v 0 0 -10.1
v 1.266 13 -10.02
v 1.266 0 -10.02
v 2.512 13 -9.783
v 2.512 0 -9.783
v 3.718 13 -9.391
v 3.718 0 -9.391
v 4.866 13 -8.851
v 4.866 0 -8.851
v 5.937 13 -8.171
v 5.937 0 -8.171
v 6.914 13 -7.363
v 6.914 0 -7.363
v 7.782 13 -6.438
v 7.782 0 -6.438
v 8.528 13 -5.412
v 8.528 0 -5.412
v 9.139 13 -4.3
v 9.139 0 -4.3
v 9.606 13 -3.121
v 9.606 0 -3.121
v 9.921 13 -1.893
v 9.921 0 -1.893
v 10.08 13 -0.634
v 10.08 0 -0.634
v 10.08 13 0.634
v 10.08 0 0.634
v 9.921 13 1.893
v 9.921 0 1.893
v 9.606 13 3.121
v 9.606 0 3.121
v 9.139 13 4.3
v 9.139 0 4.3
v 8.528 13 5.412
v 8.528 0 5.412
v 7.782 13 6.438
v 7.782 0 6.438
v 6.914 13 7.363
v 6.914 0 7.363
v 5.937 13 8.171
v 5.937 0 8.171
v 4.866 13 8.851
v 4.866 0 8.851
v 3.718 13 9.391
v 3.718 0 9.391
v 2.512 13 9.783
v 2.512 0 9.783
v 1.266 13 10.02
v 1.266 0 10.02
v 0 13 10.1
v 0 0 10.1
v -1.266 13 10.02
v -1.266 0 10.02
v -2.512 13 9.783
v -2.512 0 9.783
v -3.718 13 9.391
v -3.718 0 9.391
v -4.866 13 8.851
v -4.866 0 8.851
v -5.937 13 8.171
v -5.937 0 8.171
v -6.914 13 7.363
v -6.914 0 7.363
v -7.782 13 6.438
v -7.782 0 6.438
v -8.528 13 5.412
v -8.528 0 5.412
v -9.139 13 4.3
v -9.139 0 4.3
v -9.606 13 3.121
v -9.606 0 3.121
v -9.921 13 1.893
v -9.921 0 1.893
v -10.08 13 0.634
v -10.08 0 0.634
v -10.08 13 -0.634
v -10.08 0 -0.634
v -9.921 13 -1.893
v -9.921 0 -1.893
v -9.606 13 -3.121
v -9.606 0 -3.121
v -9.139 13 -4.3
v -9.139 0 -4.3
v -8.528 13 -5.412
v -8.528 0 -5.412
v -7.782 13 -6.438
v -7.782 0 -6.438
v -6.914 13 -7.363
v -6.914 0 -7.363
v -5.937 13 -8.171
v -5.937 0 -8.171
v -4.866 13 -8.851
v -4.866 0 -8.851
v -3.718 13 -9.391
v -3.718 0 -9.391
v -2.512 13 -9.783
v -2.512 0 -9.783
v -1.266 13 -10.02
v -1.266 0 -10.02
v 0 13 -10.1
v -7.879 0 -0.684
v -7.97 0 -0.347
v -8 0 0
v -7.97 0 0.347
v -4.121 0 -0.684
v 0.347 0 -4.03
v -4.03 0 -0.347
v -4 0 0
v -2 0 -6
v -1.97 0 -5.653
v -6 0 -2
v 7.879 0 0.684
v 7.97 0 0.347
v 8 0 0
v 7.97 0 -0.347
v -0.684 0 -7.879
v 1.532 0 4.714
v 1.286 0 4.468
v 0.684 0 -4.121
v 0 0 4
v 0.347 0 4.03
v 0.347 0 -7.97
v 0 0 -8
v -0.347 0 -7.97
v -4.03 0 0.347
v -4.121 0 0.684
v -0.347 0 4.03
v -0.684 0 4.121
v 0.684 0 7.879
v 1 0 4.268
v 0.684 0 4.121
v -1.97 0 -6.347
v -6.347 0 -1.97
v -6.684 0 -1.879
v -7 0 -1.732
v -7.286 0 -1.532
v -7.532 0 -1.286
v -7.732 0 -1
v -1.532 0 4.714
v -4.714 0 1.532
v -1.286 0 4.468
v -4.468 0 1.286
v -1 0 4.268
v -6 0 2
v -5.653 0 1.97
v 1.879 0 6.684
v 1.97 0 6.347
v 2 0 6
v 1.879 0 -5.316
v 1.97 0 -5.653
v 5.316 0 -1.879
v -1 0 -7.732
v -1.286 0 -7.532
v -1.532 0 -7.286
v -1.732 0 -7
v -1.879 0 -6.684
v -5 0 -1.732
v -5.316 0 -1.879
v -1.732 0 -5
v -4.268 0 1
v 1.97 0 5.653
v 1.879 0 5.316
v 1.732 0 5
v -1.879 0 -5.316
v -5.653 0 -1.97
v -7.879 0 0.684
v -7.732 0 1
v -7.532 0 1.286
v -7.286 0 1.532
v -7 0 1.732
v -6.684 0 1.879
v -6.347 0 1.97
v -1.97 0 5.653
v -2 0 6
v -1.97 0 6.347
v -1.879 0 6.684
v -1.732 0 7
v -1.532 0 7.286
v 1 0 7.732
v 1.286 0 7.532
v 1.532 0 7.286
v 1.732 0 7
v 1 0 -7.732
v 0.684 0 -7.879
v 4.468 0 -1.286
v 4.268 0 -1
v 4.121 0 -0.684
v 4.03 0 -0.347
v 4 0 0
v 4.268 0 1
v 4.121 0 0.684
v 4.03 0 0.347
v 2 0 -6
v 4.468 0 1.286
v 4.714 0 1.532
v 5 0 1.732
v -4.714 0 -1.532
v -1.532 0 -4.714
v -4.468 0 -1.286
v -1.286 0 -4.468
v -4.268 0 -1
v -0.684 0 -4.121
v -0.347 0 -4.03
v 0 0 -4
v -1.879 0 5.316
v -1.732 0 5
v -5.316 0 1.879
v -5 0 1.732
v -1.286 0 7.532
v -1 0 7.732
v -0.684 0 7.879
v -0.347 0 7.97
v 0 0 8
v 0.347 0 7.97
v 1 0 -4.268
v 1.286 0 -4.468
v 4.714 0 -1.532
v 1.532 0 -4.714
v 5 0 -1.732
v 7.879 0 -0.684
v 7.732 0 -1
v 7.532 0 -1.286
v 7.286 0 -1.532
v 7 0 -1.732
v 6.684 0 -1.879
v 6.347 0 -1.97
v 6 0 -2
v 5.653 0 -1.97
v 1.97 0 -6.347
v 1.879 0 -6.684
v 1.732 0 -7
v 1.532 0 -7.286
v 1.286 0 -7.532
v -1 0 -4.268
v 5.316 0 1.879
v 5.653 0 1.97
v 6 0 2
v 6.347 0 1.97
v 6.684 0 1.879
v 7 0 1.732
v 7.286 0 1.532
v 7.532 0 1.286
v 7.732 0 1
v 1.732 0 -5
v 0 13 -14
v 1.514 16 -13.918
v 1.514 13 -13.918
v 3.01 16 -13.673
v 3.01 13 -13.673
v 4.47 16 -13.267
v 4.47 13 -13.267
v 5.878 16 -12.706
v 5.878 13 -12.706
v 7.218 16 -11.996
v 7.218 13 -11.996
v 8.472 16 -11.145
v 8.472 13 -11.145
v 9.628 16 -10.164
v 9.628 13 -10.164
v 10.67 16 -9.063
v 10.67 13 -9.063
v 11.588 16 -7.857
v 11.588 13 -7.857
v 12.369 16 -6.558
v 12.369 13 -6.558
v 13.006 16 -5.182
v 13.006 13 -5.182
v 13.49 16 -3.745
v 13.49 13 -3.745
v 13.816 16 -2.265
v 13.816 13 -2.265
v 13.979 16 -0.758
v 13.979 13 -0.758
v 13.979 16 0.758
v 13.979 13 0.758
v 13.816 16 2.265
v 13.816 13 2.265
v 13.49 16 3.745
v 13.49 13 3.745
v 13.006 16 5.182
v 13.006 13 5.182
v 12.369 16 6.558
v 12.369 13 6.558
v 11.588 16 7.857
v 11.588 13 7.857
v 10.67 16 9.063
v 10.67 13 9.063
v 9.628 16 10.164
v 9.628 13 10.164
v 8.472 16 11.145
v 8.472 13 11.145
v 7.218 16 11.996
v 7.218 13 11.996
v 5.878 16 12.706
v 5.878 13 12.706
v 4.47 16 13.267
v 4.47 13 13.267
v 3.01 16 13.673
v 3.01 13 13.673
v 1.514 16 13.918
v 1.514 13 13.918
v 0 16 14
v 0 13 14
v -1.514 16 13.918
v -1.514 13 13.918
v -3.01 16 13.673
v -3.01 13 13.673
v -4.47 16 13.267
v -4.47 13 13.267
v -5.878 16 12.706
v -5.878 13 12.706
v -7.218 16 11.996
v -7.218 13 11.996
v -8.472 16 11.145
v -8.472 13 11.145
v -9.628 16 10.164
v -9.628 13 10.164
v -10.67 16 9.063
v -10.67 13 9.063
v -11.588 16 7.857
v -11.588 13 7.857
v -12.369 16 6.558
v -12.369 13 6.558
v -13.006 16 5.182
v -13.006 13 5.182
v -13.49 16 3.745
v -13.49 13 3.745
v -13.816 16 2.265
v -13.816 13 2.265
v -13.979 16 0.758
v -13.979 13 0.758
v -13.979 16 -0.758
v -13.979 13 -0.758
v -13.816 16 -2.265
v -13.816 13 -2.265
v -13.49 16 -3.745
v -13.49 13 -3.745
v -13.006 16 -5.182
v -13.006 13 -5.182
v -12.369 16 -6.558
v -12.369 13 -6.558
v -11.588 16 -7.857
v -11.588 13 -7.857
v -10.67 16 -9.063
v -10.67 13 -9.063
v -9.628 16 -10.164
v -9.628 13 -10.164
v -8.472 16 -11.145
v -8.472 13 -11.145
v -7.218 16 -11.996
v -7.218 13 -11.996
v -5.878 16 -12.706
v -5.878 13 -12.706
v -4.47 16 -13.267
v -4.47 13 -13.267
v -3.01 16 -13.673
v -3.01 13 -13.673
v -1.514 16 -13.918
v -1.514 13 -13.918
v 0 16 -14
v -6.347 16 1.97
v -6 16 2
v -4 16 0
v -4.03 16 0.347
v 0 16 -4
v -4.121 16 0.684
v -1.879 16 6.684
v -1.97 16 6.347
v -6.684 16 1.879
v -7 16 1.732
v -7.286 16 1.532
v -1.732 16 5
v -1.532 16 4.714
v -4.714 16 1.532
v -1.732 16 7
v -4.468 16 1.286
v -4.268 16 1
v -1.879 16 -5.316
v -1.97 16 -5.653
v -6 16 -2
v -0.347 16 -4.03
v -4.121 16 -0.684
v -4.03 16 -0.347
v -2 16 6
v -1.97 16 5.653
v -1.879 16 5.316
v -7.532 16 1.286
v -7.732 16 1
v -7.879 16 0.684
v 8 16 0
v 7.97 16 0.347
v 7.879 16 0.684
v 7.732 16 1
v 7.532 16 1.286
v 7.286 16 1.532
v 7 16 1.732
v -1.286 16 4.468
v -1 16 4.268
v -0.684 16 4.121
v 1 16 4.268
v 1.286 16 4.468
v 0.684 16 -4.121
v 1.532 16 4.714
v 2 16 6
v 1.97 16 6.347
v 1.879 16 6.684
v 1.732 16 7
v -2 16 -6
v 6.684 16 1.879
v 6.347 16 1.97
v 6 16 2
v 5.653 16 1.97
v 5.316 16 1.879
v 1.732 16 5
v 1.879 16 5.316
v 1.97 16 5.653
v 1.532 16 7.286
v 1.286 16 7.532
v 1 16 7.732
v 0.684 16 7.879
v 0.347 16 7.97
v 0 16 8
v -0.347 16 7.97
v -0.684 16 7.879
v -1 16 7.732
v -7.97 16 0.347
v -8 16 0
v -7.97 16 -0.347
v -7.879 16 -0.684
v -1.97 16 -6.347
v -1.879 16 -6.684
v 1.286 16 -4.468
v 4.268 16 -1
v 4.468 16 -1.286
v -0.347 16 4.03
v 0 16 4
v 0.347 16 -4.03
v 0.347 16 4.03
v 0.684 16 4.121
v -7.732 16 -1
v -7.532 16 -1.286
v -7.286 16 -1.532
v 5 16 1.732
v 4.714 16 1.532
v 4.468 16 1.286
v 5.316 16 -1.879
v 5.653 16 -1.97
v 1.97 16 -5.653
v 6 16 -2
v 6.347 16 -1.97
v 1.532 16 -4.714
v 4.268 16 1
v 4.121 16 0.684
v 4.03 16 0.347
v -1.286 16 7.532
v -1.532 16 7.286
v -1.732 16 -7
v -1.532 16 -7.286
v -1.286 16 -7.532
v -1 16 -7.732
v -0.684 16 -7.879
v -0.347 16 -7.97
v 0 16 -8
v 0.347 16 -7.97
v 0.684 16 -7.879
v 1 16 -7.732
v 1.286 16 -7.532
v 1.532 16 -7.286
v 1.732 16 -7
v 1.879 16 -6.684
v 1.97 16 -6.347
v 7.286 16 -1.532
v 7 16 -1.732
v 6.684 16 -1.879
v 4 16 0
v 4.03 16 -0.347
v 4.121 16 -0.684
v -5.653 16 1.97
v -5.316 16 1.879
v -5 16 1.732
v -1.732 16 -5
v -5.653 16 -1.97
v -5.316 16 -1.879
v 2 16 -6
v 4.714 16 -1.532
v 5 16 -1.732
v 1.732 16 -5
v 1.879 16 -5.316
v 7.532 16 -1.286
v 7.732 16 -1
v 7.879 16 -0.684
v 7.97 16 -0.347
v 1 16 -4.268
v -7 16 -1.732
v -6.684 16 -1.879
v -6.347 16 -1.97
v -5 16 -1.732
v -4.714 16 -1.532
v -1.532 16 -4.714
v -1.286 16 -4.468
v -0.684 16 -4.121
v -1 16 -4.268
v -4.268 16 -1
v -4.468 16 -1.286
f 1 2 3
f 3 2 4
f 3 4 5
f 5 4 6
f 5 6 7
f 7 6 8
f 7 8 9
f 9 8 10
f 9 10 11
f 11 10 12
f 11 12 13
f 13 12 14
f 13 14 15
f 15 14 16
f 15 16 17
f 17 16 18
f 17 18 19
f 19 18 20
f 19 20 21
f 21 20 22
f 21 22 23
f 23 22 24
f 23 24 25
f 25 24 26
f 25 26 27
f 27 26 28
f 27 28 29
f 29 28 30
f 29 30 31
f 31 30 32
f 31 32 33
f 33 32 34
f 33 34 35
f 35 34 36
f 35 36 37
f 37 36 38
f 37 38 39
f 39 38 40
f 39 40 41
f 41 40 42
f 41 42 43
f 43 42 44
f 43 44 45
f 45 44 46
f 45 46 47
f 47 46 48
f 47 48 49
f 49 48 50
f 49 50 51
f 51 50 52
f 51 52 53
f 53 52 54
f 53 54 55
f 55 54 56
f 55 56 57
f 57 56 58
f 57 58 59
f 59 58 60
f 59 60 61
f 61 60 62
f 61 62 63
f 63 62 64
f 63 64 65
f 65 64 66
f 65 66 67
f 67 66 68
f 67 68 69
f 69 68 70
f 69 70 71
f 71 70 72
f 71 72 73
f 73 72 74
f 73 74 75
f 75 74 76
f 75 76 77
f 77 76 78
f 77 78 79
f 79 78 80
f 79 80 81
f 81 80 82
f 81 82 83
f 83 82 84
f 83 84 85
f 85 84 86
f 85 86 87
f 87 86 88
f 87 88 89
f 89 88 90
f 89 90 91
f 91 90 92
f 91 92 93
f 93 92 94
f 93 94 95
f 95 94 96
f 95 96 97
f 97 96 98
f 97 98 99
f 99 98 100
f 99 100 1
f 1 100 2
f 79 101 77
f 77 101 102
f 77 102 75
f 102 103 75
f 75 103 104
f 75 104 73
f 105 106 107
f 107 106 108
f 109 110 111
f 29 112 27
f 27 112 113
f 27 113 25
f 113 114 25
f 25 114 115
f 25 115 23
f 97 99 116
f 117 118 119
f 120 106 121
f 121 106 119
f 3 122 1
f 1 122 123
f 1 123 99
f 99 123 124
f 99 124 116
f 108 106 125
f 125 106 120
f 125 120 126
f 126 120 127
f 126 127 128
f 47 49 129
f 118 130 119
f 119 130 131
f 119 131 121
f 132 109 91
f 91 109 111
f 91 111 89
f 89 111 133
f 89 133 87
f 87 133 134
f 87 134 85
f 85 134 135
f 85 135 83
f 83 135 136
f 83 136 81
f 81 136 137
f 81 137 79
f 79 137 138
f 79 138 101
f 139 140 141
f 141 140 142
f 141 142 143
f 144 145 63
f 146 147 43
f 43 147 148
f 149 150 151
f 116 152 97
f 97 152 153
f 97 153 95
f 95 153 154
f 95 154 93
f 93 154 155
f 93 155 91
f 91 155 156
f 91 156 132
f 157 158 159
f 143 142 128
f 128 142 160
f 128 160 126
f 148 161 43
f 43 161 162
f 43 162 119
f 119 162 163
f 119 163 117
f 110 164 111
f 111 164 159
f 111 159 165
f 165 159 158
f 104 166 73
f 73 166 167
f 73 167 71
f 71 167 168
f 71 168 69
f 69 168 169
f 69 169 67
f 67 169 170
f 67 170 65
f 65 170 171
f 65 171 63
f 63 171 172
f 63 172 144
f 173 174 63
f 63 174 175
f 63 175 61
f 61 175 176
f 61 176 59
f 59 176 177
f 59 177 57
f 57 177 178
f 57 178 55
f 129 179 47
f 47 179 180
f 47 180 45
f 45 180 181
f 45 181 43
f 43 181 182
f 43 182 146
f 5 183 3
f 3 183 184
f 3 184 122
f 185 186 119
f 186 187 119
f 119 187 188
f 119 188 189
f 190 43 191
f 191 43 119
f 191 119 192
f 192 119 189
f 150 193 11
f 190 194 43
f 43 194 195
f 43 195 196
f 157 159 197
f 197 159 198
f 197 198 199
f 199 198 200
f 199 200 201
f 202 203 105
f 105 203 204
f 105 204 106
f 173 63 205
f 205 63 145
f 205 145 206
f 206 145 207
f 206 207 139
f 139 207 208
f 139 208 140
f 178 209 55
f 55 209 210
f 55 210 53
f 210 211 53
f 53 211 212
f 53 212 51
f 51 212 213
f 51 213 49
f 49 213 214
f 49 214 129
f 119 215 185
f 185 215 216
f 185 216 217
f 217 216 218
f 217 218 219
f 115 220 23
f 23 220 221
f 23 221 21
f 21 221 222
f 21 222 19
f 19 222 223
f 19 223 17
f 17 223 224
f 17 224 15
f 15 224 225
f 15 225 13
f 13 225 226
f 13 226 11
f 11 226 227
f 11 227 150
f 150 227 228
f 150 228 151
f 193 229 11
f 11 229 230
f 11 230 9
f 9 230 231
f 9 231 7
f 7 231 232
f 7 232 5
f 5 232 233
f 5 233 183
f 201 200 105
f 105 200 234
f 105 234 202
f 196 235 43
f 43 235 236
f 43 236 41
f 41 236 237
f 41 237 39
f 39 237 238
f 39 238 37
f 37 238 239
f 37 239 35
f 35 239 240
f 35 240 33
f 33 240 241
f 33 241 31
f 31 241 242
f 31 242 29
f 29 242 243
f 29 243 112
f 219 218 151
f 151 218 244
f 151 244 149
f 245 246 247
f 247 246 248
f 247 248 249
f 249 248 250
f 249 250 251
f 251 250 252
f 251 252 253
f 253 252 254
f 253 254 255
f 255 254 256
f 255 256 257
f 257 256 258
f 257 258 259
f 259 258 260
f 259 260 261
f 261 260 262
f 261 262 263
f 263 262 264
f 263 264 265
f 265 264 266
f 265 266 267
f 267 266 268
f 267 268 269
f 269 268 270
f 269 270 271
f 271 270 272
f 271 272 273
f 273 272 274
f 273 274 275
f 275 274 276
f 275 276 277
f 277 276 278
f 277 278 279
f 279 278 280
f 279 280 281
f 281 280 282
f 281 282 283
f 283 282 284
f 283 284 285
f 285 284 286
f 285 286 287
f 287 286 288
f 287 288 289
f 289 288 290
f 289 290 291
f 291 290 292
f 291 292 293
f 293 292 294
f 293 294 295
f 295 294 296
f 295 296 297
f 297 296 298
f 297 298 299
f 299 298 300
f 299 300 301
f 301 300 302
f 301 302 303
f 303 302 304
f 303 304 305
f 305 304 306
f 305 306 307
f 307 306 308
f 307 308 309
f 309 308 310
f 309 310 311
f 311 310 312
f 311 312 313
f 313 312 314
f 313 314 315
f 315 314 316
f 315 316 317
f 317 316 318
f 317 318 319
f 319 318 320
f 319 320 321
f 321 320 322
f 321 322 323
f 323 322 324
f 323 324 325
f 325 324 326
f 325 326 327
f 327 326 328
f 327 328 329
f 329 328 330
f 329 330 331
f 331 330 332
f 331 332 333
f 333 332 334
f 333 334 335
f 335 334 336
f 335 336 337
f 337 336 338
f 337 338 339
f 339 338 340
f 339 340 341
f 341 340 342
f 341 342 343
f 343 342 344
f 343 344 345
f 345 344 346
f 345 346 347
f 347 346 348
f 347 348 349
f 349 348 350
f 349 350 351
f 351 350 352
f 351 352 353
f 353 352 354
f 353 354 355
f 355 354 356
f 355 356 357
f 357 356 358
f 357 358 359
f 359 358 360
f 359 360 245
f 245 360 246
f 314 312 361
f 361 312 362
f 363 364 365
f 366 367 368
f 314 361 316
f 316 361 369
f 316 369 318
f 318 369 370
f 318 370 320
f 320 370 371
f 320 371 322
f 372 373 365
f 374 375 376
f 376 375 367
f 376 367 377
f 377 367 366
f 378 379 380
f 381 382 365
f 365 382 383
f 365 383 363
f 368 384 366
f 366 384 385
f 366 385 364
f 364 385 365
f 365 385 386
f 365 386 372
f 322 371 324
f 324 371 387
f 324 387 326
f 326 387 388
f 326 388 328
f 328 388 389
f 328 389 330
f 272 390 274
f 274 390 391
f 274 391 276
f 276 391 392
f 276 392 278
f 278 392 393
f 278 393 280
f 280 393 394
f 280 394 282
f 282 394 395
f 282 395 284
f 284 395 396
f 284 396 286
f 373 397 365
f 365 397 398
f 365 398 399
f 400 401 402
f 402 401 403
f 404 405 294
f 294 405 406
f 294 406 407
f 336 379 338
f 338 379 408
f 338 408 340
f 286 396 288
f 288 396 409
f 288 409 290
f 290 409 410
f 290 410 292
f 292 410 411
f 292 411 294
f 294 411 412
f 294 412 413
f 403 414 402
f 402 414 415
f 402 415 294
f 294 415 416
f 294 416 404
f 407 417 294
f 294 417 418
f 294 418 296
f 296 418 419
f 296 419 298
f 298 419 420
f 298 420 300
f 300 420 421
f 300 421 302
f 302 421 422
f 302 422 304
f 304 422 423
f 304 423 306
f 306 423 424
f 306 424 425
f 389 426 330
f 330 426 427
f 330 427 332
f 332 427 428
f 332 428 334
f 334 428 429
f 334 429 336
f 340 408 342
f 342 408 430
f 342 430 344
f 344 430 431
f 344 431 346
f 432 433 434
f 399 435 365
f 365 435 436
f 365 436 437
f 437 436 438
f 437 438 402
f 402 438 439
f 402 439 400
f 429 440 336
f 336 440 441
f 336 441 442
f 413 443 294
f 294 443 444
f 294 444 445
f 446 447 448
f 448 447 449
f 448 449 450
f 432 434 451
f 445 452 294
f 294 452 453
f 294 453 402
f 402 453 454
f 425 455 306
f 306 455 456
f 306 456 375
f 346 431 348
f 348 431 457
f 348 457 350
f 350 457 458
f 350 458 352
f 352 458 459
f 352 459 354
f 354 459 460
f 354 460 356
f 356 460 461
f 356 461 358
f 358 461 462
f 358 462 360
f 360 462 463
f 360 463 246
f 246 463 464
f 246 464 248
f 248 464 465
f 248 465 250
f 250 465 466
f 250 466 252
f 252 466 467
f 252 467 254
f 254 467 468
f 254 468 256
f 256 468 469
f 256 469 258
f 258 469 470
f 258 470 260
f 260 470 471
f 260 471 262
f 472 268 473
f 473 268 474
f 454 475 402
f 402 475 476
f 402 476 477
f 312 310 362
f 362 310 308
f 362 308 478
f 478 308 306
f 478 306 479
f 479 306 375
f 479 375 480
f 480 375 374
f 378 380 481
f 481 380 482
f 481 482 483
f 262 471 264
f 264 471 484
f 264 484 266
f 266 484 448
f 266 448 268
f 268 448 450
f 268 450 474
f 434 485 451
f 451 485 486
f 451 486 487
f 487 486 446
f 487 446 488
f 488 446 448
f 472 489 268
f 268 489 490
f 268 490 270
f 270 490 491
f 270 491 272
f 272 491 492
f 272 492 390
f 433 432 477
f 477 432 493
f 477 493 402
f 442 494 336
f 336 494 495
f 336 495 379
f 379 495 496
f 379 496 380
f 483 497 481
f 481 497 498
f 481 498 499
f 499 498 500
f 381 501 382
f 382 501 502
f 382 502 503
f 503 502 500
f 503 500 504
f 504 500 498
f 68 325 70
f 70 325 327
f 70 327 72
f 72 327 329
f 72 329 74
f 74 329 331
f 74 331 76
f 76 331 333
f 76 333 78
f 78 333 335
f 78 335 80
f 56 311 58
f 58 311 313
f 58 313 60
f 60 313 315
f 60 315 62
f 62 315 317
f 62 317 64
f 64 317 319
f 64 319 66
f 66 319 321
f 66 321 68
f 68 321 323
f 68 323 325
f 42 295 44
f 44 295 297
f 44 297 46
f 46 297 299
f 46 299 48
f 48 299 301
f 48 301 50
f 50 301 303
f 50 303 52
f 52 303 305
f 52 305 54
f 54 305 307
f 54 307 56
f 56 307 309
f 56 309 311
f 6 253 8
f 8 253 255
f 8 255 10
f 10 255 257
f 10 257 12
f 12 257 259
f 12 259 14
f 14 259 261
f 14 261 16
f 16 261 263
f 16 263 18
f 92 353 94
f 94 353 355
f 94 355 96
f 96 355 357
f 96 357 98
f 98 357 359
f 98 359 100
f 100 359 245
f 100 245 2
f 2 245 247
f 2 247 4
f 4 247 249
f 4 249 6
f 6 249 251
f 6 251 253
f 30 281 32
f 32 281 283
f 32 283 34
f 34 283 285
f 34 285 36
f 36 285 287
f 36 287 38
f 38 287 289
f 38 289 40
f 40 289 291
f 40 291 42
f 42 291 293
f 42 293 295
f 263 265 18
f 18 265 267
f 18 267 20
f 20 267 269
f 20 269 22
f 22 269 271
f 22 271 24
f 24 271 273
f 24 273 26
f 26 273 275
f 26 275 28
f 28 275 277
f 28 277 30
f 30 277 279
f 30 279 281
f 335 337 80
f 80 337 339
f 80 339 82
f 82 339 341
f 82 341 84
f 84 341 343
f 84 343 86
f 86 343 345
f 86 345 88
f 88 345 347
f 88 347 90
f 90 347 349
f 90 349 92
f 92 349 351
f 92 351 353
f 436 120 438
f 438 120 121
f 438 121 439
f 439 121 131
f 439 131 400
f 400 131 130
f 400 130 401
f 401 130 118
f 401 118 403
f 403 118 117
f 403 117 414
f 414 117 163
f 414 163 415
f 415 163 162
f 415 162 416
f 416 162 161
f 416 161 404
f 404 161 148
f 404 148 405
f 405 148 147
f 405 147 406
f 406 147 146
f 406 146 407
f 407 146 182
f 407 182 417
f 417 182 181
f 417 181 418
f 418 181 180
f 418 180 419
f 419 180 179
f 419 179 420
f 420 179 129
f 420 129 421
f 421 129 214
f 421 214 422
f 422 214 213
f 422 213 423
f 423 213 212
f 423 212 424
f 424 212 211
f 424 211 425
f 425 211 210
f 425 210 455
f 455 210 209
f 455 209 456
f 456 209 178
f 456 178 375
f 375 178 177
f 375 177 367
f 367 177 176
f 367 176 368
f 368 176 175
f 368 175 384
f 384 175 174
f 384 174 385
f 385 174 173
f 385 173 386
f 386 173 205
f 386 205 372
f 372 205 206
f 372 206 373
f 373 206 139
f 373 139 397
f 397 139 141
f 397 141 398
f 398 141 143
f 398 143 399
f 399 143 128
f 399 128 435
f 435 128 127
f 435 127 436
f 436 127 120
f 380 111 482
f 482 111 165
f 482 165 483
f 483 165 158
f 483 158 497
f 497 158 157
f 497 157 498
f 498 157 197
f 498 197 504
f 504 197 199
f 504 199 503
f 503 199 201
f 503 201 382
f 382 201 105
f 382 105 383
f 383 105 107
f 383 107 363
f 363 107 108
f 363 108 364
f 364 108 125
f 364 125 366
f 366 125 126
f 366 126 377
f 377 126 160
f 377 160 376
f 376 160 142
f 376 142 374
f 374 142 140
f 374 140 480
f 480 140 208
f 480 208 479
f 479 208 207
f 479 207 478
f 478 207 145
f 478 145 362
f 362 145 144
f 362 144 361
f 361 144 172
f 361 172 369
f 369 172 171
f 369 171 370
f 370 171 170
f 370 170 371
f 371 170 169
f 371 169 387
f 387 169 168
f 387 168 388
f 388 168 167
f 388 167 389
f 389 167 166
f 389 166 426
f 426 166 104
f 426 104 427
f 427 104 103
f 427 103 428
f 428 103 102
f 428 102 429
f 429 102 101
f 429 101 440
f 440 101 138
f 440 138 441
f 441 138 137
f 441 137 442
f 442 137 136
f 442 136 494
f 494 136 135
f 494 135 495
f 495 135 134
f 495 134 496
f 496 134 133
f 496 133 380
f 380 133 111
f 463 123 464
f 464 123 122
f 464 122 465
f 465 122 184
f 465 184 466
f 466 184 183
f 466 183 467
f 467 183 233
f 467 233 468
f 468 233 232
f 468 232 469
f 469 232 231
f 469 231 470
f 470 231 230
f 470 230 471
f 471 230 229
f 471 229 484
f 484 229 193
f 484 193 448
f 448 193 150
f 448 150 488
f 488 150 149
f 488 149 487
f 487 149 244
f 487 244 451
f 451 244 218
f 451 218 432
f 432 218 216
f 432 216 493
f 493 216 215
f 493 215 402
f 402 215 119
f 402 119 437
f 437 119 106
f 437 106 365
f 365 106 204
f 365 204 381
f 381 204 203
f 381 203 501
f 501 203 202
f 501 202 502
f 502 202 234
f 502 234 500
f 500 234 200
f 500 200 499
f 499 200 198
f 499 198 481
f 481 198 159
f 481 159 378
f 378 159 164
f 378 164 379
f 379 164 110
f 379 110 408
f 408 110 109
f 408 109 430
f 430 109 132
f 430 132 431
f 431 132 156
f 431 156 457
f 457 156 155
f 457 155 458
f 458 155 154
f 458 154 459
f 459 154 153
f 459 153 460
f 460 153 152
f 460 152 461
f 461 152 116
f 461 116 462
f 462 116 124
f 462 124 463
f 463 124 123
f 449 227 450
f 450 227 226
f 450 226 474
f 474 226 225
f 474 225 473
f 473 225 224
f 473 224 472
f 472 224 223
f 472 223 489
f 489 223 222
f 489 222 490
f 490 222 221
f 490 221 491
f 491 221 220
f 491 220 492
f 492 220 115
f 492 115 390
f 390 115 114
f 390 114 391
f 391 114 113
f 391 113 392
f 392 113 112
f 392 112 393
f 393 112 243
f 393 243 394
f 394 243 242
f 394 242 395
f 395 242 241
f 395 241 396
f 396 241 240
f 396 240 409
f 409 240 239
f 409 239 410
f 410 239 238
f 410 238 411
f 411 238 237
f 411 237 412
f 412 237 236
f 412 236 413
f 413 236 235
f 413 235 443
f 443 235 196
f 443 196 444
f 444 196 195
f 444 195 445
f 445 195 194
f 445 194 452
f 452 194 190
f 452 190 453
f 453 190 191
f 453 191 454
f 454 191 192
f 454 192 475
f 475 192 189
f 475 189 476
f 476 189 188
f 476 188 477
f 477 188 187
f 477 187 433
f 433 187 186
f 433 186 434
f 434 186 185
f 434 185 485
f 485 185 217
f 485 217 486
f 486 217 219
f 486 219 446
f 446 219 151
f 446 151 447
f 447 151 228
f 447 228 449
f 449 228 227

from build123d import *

# Parameters (mm, degrees)
SKETCH1_R           = 10.1
BOSS_EXTRUDE1_DEPTH = 13
SKETCH2_R           = 14
BOSS_EXTRUDE2_DEPTH = 3
SKETCH3_R           = 2
CUT_EXTRUDE1_DEPTH  = 17
CIRPATTERN1_COUNT   = 4


with BuildPart() as part:
    # Sketch1 → Boss-Extrude1 (new body)
    with BuildSketch(Plane(origin=(0, 0, 0), x_dir=(1, 0, 0), z_dir=(0, 1, 0))):
        Circle(SKETCH1_R)
    extrude(amount=BOSS_EXTRUDE1_DEPTH)

    # Sketch2 → Boss-Extrude2 (add)
    with BuildSketch(Plane(origin=(0, 13, 0), x_dir=(1, 0, 0), z_dir=(0, 1, 0))):
        Circle(SKETCH2_R)
    extrude(amount=BOSS_EXTRUDE2_DEPTH)

    # Sketch3 → Cut-Extrude1 (cut, through all)
    with BuildSketch(Plane.XZ):
        with Locations((0, 6)):
            Circle(SKETCH3_R)
    cut_extrude1 = extrude(amount=-CUT_EXTRUDE1_DEPTH, mode=Mode.SUBTRACT)

    # CirPattern1: Cut-Extrude1 ×4 about axis
    cirpattern1_axis = Axis((0, 0, 0), (0, 1, 0))
    for i in range(1, CIRPATTERN1_COUNT):
        add(cut_extrude1.rotate(cirpattern1_axis, i * 360 / CIRPATTERN1_COUNT), mode=Mode.SUBTRACT)


solid = part.part
